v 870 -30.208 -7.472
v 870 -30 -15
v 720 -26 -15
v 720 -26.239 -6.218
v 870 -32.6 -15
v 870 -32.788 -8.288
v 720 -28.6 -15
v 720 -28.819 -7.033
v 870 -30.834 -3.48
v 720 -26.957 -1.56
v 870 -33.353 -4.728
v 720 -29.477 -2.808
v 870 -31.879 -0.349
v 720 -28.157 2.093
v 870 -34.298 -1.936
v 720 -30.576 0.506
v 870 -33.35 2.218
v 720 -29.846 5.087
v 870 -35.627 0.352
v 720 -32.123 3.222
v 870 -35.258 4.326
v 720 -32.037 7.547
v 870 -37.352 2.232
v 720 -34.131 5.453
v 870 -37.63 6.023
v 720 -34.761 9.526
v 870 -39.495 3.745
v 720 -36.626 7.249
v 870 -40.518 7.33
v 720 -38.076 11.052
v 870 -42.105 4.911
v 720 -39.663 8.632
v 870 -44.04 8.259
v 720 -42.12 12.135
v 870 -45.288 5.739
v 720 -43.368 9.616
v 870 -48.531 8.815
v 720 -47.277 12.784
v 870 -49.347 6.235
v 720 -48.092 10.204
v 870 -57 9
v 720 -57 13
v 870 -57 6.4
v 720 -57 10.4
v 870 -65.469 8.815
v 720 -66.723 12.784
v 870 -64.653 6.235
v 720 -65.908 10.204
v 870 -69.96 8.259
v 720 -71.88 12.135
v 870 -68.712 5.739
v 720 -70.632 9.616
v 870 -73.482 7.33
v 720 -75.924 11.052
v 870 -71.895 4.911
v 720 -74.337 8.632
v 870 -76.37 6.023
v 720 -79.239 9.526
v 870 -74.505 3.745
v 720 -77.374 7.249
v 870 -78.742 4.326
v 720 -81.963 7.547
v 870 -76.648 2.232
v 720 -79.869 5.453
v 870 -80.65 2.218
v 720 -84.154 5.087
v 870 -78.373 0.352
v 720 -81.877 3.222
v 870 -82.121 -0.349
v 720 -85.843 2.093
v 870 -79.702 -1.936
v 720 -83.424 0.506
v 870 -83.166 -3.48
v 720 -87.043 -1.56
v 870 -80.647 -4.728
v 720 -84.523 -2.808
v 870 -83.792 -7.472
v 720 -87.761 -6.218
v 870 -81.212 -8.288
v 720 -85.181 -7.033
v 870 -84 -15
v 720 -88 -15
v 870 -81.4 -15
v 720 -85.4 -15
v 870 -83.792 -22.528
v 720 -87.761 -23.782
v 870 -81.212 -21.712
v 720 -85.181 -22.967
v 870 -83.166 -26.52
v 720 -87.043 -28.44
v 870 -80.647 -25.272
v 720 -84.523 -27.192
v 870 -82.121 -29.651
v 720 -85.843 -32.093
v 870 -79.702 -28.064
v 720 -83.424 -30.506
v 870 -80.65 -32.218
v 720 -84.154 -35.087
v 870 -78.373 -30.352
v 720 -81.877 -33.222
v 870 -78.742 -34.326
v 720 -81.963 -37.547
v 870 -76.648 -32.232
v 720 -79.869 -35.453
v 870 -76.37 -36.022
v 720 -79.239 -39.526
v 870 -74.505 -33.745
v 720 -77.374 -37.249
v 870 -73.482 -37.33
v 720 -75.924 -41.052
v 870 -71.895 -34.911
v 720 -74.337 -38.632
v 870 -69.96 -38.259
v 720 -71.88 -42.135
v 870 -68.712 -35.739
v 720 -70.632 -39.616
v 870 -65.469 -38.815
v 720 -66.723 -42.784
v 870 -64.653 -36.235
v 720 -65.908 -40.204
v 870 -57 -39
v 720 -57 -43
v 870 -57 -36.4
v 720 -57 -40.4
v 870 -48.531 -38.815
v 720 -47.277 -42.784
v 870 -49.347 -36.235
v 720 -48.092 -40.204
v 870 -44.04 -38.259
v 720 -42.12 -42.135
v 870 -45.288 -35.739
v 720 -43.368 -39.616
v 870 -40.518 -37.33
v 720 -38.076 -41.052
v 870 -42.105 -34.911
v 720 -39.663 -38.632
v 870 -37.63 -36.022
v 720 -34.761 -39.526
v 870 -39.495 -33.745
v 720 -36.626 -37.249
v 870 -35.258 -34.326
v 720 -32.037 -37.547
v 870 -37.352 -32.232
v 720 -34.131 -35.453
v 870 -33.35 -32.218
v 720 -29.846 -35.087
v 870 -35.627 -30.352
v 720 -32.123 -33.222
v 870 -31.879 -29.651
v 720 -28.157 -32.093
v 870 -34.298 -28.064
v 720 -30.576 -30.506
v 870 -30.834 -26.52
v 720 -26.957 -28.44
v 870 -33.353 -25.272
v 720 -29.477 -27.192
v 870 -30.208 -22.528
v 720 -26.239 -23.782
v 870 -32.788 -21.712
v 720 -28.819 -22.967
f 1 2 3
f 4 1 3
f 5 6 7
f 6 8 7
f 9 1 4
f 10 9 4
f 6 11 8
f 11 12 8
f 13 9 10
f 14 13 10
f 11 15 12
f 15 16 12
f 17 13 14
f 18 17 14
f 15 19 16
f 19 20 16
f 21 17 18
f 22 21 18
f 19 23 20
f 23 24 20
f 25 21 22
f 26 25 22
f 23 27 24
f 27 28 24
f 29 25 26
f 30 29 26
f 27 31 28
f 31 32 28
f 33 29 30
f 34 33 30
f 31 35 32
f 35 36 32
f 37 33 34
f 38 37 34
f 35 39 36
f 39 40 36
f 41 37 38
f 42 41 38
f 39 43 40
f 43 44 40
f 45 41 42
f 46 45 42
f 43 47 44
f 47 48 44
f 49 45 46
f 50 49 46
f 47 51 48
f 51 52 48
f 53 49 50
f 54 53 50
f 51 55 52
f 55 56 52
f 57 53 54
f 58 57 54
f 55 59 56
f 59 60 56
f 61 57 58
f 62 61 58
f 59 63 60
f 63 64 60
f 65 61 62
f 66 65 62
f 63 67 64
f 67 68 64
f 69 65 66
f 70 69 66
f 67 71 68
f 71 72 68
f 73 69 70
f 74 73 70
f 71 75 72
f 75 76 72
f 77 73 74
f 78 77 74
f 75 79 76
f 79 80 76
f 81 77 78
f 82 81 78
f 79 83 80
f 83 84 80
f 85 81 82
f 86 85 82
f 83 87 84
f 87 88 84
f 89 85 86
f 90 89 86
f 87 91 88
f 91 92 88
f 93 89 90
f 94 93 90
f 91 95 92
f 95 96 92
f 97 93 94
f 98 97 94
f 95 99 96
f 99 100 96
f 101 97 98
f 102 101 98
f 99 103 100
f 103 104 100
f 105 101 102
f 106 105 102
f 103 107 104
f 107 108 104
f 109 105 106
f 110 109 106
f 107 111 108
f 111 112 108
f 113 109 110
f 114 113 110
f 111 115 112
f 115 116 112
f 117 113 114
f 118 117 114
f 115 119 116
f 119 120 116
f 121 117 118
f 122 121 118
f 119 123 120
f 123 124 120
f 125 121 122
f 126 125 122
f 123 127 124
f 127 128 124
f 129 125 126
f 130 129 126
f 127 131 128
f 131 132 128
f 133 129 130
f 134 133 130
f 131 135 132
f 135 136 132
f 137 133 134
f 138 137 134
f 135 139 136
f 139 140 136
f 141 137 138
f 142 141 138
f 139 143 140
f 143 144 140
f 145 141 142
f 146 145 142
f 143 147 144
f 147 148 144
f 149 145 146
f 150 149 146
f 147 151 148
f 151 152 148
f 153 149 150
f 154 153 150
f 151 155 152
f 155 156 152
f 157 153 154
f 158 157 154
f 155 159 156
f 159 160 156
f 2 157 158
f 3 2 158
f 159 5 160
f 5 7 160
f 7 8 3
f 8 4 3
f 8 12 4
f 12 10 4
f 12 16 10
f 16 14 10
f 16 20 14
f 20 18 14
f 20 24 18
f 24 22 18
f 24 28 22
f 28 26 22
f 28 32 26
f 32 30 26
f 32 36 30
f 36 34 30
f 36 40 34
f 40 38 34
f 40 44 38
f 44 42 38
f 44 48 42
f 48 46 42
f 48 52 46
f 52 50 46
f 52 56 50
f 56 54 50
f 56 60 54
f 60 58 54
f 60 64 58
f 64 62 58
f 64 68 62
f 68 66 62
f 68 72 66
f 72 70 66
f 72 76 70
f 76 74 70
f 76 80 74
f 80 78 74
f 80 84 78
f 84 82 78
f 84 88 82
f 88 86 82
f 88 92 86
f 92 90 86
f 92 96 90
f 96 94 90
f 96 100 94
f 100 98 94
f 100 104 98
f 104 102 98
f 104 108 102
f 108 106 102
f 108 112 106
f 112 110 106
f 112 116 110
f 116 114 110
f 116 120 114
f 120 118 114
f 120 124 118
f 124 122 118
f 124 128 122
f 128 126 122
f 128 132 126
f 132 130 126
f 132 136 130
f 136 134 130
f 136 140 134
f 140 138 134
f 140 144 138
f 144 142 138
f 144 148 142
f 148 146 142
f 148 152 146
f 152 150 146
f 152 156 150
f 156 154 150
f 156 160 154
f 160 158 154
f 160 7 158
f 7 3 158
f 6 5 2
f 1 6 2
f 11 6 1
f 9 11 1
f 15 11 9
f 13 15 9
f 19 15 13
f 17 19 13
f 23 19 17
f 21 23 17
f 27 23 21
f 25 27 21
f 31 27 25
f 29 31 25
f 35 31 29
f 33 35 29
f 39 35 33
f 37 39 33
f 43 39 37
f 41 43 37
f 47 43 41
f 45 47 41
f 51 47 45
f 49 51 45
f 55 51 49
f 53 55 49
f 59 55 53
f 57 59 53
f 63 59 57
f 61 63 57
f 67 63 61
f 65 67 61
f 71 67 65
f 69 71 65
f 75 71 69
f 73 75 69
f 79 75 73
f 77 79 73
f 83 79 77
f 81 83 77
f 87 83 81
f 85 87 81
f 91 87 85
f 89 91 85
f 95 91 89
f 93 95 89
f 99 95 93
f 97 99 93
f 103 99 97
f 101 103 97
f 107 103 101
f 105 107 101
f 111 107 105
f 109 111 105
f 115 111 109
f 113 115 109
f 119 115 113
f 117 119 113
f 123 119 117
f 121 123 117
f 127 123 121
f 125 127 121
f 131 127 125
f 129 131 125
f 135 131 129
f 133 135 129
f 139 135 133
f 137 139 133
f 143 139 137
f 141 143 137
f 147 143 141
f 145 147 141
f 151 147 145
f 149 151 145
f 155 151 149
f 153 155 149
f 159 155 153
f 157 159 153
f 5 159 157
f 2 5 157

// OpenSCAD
polyhedron(points=[[720.0, -26.0, -15.0], [720.0, -26.239092, -6.217548], [720.0, -26.957183, -1.56007], [720.0, -28.157211, 2.092763], [720.0, -29.845912, 5.087214], [720.0, -32.0374, 7.546865], [720.0, -34.760584, 9.526273], [720.0, -38.07587, 11.051551], [720.0, -42.120077, 12.135447], [720.0, -47.276571, 12.784046], [720.0, -57.0, 13.0], [720.0, -66.723429, 12.784046], [720.0, -71.879923, 12.135447], [720.0, -75.92413, 11.051551], [720.0, -79.239416, 9.526273], [720.0, -81.9626, 7.546865], [720.0, -84.154088, 5.087214], [720.0, -85.842789, 2.092763], [720.0, -87.042817, -1.56007], [720.0, -87.760908, -6.217548], [720.0, -88.0, -15.0], [720.0, -87.760908, -23.782452], [720.0, -87.042817, -28.43993], [720.0, -85.842789, -32.092763], [720.0, -84.154088, -35.087214], [720.0, -81.9626, -37.546865], [720.0, -79.239416, -39.526273], [720.0, -75.92413, -41.051551], [720.0, -71.879923, -42.135447], [720.0, -66.723429, -42.784046], [720.0, -57.0, -43.0], [720.0, -47.276571, -42.784046], [720.0, -42.120077, -42.135447], [720.0, -38.07587, -41.051551], [720.0, -34.760584, -39.526273], [720.0, -32.0374, -37.546865], [720.0, -29.845912, -35.087214], [720.0, -28.157211, -32.092763], [720.0, -26.957183, -28.43993], [720.0, -26.239092, -23.782452], [720.0, -28.6, -15.0], [720.0, -28.819039, -7.033061], [720.0, -29.476903, -2.808063], [720.0, -30.576284, 0.505577], [720.0, -32.123352, 3.221973], [720.0, -34.131037, 5.453227], [720.0, -36.625826, 7.248833], [720.0, -39.663055, 8.632478], [720.0, -43.368071, 9.615727], [720.0, -48.092084, 10.204099], [720.0, -57.0, 10.4], [720.0, -65.907916, 10.204099], [720.0, -70.631929, 9.615727], [720.0, -74.336945, 8.632478], [720.0, -77.374174, 7.248833], [720.0, -79.868963, 5.453227], [720.0, -81.876648, 3.221973], [720.0, -83.423716, 0.505577], [720.0, -84.523097, -2.808063], [720.0, -85.180961, -7.033061], [720.0, -85.4, -15.0], [720.0, -85.180961, -22.966939], [720.0, -84.523097, -27.191937], [720.0, -83.423716, -30.505577], [720.0, -81.876648, -33.221973], [720.0, -79.868963, -35.453227], [720.0, -77.374174, -37.248833], [720.0, -74.336945, -38.632478], [720.0, -70.631929, -39.615727], [720.0, -65.907916, -40.204099], [720.0, -57.0, -40.4], [720.0, -48.092084, -40.204099], [720.0, -43.368071, -39.615727], [720.0, -39.663055, -38.632478], [720.0, -36.625826, -37.248833], [720.0, -34.131037, -35.453227], [720.0, -32.123352, -33.221973], [720.0, -30.576284, -30.505577], [720.0, -29.476903, -27.191937], [720.0, -28.819039, -22.966939], [870.0, -30.0, -15.0], [870.0, -30.208242, -7.472184], [870.0, -30.833676, -3.48006], [870.0, -31.878862, -0.349061], [870.0, -33.349665, 2.217612], [870.0, -35.258381, 4.325884], [870.0, -37.630186, 6.02252], [870.0, -40.517693, 7.329901], [870.0, -44.040067, 8.258955], [870.0, -48.531207, 8.814896], [870.0, -57.0, 9.0], [870.0, -65.468793, 8.814896], [870.0, -69.959933, 8.258955], [870.0, -73.482307, 7.329901], [870.0, -76.369814, 6.02252], [870.0, -78.741619, 4.325884], [870.0, -80.650335, 2.217612], [870.0, -82.121138, -0.349061], [870.0, -83.166324, -3.48006], [870.0, -83.791758, -7.472184], [870.0, -84.0, -15.0], [870.0, -83.791758, -22.527816], [870.0, -83.166324, -26.51994], [870.0, -82.121138, -29.650939], [870.0, -80.650335, -32.217612], [870.0, -78.741619, -34.325884], [870.0, -76.369814, -36.02252], [870.0, -73.482307, -37.329901], [870.0, -69.959933, -38.258955], [870.0, -65.468793, -38.814896], [870.0, -57.0, -39.0], [870.0, -48.531207, -38.814896], [870.0, -44.040067, -38.258955], [870.0, -40.517693, -37.329901], [870.0, -37.630186, -36.02252], [870.0, -35.258381, -34.325884], [870.0, -33.349665, -32.217612], [870.0, -31.878862, -29.650939], [870.0, -30.833676, -26.51994], [870.0, -30.208242, -22.527816], [870.0, -32.6, -15.0], [870.0, -32.788189, -8.287697], [870.0, -33.353396, -4.728053], [870.0, -34.297934, -1.936246], [870.0, -35.627105, 0.352371], [870.0, -37.352018, 2.232247], [870.0, -39.495428, 3.74508], [870.0, -42.104878, 4.910828], [870.0, -45.288061, 5.739235], [870.0, -49.34672, 6.234949], [870.0, -57.0, 6.4], [870.0, -64.65328, 6.234949], [870.0, -68.711939, 5.739235], [870.0, -71.895122, 4.910828], [870.0, -74.504572, 3.74508], [870.0, -76.647982, 2.232247], [870.0, -78.372895, 0.352371], [870.0, -79.702066, -1.936246], [870.0, -80.646604, -4.728053], [870.0, -81.211811, -8.287697], [870.0, -81.4, -15.0], [870.0, -81.211811, -21.712303], [870.0, -80.646604, -25.271947], [870.0, -79.702066, -28.063754], [870.0, -78.372895, -30.352371], [870.0, -76.647982, -32.232247], [870.0, -74.504572, -33.74508], [870.0, -71.895122, -34.910828], [870.0, -68.711939, -35.739235], [870.0, -64.65328, -36.234949], [870.0, -57.0, -36.4], [870.0, -49.34672, -36.234949], [870.0, -45.288061, -35.739235], [870.0, -42.104878, -34.910828], [870.0, -39.495428, -33.74508], [870.0, -37.352018, -32.232247], [870.0, -35.627105, -30.352371], [870.0, -34.297934, -28.063754], [870.0, -33.353396, -25.271947], [870.0, -32.788189, -21.712303]], faces=[[0, 80, 81], [0, 81, 1], [40, 121, 120], [40, 41, 121], [1, 81, 82], [1, 82, 2], [41, 122, 121], [41, 42, 122], [2, 82, 83], [2, 83, 3], [42, 123, 122], [42, 43, 123], [3, 83, 84], [3, 84, 4], [43, 124, 123], [43, 44, 124], [4, 84, 85], [4, 85, 5], [44, 125, 124], [44, 45, 125], [5, 85, 86], [5, 86, 6], [45, 126, 125], [45, 46, 126], [6, 86, 87], [6, 87, 7], [46, 127, 126], [46, 47, 127], [7, 87, 88], [7, 88, 8], [47, 128, 127], [47, 48, 128], [8, 88, 89], [8, 89, 9], [48, 129, 128], [48, 49, 129], [9, 89, 90], [9, 90, 10], [49, 130, 129], [49, 50, 130], [10, 90, 91], [10, 91, 11], [50, 131, 130], [50, 51, 131], [11, 91, 92], [11, 92, 12], [51, 132, 131], [51, 52, 132], [12, 92, 93], [12, 93, 13], [52, 133, 132], [52, 53, 133], [13, 93, 94], [13, 94, 14], [53, 134, 133], [53, 54, 134], [14, 94, 95], [14, 95, 15], [54, 135, 134], [54, 55, 135], [15, 95, 96], [15, 96, 16], [55, 136, 135], [55, 56, 136], [16, 96, 97], [16, 97, 17], [56, 137, 136], [56, 57, 137], [17, 97, 98], [17, 98, 18], [57, 138, 137], [57, 58, 138], [18, 98, 99], [18, 99, 19], [58, 139, 138], [58, 59, 139], [19, 99, 100], [19, 100, 20], [59, 140, 139], [59, 60, 140], [20, 100, 101], [20, 101, 21], [60, 141, 140], [60, 61, 141], [21, 101, 102], [21, 102, 22], [61, 142, 141], [61, 62, 142], [22, 102, 103], [22, 103, 23], [62, 143, 142], [62, 63, 143], [23, 103, 104], [23, 104, 24], [63, 144, 143], [63, 64, 144], [24, 104, 105], [24, 105, 25], [64, 145, 144], [64, 65, 145], [25, 105, 106], [25, 106, 26], [65, 146, 145], [65, 66, 146], [26, 106, 107], [26, 107, 27], [66, 147, 146], [66, 67, 147], [27, 107, 108], [27, 108, 28], [67, 148, 147], [67, 68, 148], [28, 108, 109], [28, 109, 29], [68, 149, 148], [68, 69, 149], [29, 109, 110], [29, 110, 30], [69, 150, 149], [69, 70, 150], [30, 110, 111], [30, 111, 31], [70, 151, 150], [70, 71, 151], [31, 111, 112], [31, 112, 32], [71, 152, 151], [71, 72, 152], [32, 112, 113], [32, 113, 33], [72, 153, 152], [72, 73, 153], [33, 113, 114], [33, 114, 34], [73, 154, 153], [73, 74, 154], [34, 114, 115], [34, 115, 35], [74, 155, 154], [74, 75, 155], [35, 115, 116], [35, 116, 36], [75, 156, 155], [75, 76, 156], [36, 116, 117], [36, 117, 37], [76, 157, 156], [76, 77, 157], [37, 117, 118], [37, 118, 38], [77, 158, 157], [77, 78, 158], [38, 118, 119], [38, 119, 39], [78, 159, 158], [78, 79, 159], [39, 119, 80], [39, 80, 0], [79, 120, 159], [79, 40, 120], [0, 41, 40], [0, 1, 41], [1, 42, 41], [1, 2, 42], [2, 43, 42], [2, 3, 43], [3, 44, 43], [3, 4, 44], [4, 45, 44], [4, 5, 45], [5, 46, 45], [5, 6, 46], [6, 47, 46], [6, 7, 47], [7, 48, 47], [7, 8, 48], [8, 49, 48], [8, 9, 49], [9, 50, 49], [9, 10, 50], [10, 51, 50], [10, 11, 51], [11, 52, 51], [11, 12, 52], [12, 53, 52], [12, 13, 53], [13, 54, 53], [13, 14, 54], [14, 55, 54], [14, 15, 55], [15, 56, 55], [15, 16, 56], [16, 57, 56], [16, 17, 57], [17, 58, 57], [17, 18, 58], [18, 59, 58], [18, 19, 59], [19, 60, 59], [19, 20, 60], [20, 61, 60], [20, 21, 61], [21, 62, 61], [21, 22, 62], [22, 63, 62], [22, 23, 63], [23, 64, 63], [23, 24, 64], [24, 65, 64], [24, 25, 65], [25, 66, 65], [25, 26, 66], [26, 67, 66], [26, 27, 67], [27, 68, 67], [27, 28, 68], [28, 69, 68], [28, 29, 69], [29, 70, 69], [29, 30, 70], [30, 71, 70], [30, 31, 71], [31, 72, 71], [31, 32, 72], [32, 73, 72], [32, 33, 73], [33, 74, 73], [33, 34, 74], [34, 75, 74], [34, 35, 75], [35, 76, 75], [35, 36, 76], [36, 77, 76], [36, 37, 77], [37, 78, 77], [37, 38, 78], [38, 79, 78], [38, 39, 79], [39, 40, 79], [39, 0, 40], [80, 120, 121], [80, 121, 81], [81, 121, 122], [81, 122, 82], [82, 122, 123], [82, 123, 83], [83, 123, 124], [83, 124, 84], [84, 124, 125], [84, 125, 85], [85, 125, 126], [85, 126, 86], [86, 126, 127], [86, 127, 87], [87, 127, 128], [87, 128, 88], [88, 128, 129], [88, 129, 89], [89, 129, 130], [89, 130, 90], [90, 130, 131], [90, 131, 91], [91, 131, 132], [91, 132, 92], [92, 132, 133], [92, 133, 93], [93, 133, 134], [93, 134, 94], [94, 134, 135], [94, 135, 95], [95, 135, 136], [95, 136, 96], [96, 136, 137], [96, 137, 97], [97, 137, 138], [97, 138, 98], [98, 138, 139], [98, 139, 99], [99, 139, 140], [99, 140, 100], [100, 140, 141], [100, 141, 101], [101, 141, 142], [101, 142, 102], [102, 142, 143], [102, 143, 103], [103, 143, 144], [103, 144, 104], [104, 144, 145], [104, 145, 105], [105, 145, 146], [105, 146, 106], [106, 146, 147], [106, 147, 107], [107, 147, 148], [107, 148, 108], [108, 148, 149], [108, 149, 109], [109, 149, 150], [109, 150, 110], [110, 150, 151], [110, 151, 111], [111, 151, 152], [111, 152, 112], [112, 152, 153], [112, 153, 113], [113, 153, 154], [113, 154, 114], [114, 154, 155], [114, 155, 115], [115, 155, 156], [115, 156, 116], [116, 156, 157], [116, 157, 117], [117, 157, 158], [117, 158, 118], [118, 158, 159], [118, 159, 119], [119, 159, 120], [119, 120, 80]], convexity=30);
